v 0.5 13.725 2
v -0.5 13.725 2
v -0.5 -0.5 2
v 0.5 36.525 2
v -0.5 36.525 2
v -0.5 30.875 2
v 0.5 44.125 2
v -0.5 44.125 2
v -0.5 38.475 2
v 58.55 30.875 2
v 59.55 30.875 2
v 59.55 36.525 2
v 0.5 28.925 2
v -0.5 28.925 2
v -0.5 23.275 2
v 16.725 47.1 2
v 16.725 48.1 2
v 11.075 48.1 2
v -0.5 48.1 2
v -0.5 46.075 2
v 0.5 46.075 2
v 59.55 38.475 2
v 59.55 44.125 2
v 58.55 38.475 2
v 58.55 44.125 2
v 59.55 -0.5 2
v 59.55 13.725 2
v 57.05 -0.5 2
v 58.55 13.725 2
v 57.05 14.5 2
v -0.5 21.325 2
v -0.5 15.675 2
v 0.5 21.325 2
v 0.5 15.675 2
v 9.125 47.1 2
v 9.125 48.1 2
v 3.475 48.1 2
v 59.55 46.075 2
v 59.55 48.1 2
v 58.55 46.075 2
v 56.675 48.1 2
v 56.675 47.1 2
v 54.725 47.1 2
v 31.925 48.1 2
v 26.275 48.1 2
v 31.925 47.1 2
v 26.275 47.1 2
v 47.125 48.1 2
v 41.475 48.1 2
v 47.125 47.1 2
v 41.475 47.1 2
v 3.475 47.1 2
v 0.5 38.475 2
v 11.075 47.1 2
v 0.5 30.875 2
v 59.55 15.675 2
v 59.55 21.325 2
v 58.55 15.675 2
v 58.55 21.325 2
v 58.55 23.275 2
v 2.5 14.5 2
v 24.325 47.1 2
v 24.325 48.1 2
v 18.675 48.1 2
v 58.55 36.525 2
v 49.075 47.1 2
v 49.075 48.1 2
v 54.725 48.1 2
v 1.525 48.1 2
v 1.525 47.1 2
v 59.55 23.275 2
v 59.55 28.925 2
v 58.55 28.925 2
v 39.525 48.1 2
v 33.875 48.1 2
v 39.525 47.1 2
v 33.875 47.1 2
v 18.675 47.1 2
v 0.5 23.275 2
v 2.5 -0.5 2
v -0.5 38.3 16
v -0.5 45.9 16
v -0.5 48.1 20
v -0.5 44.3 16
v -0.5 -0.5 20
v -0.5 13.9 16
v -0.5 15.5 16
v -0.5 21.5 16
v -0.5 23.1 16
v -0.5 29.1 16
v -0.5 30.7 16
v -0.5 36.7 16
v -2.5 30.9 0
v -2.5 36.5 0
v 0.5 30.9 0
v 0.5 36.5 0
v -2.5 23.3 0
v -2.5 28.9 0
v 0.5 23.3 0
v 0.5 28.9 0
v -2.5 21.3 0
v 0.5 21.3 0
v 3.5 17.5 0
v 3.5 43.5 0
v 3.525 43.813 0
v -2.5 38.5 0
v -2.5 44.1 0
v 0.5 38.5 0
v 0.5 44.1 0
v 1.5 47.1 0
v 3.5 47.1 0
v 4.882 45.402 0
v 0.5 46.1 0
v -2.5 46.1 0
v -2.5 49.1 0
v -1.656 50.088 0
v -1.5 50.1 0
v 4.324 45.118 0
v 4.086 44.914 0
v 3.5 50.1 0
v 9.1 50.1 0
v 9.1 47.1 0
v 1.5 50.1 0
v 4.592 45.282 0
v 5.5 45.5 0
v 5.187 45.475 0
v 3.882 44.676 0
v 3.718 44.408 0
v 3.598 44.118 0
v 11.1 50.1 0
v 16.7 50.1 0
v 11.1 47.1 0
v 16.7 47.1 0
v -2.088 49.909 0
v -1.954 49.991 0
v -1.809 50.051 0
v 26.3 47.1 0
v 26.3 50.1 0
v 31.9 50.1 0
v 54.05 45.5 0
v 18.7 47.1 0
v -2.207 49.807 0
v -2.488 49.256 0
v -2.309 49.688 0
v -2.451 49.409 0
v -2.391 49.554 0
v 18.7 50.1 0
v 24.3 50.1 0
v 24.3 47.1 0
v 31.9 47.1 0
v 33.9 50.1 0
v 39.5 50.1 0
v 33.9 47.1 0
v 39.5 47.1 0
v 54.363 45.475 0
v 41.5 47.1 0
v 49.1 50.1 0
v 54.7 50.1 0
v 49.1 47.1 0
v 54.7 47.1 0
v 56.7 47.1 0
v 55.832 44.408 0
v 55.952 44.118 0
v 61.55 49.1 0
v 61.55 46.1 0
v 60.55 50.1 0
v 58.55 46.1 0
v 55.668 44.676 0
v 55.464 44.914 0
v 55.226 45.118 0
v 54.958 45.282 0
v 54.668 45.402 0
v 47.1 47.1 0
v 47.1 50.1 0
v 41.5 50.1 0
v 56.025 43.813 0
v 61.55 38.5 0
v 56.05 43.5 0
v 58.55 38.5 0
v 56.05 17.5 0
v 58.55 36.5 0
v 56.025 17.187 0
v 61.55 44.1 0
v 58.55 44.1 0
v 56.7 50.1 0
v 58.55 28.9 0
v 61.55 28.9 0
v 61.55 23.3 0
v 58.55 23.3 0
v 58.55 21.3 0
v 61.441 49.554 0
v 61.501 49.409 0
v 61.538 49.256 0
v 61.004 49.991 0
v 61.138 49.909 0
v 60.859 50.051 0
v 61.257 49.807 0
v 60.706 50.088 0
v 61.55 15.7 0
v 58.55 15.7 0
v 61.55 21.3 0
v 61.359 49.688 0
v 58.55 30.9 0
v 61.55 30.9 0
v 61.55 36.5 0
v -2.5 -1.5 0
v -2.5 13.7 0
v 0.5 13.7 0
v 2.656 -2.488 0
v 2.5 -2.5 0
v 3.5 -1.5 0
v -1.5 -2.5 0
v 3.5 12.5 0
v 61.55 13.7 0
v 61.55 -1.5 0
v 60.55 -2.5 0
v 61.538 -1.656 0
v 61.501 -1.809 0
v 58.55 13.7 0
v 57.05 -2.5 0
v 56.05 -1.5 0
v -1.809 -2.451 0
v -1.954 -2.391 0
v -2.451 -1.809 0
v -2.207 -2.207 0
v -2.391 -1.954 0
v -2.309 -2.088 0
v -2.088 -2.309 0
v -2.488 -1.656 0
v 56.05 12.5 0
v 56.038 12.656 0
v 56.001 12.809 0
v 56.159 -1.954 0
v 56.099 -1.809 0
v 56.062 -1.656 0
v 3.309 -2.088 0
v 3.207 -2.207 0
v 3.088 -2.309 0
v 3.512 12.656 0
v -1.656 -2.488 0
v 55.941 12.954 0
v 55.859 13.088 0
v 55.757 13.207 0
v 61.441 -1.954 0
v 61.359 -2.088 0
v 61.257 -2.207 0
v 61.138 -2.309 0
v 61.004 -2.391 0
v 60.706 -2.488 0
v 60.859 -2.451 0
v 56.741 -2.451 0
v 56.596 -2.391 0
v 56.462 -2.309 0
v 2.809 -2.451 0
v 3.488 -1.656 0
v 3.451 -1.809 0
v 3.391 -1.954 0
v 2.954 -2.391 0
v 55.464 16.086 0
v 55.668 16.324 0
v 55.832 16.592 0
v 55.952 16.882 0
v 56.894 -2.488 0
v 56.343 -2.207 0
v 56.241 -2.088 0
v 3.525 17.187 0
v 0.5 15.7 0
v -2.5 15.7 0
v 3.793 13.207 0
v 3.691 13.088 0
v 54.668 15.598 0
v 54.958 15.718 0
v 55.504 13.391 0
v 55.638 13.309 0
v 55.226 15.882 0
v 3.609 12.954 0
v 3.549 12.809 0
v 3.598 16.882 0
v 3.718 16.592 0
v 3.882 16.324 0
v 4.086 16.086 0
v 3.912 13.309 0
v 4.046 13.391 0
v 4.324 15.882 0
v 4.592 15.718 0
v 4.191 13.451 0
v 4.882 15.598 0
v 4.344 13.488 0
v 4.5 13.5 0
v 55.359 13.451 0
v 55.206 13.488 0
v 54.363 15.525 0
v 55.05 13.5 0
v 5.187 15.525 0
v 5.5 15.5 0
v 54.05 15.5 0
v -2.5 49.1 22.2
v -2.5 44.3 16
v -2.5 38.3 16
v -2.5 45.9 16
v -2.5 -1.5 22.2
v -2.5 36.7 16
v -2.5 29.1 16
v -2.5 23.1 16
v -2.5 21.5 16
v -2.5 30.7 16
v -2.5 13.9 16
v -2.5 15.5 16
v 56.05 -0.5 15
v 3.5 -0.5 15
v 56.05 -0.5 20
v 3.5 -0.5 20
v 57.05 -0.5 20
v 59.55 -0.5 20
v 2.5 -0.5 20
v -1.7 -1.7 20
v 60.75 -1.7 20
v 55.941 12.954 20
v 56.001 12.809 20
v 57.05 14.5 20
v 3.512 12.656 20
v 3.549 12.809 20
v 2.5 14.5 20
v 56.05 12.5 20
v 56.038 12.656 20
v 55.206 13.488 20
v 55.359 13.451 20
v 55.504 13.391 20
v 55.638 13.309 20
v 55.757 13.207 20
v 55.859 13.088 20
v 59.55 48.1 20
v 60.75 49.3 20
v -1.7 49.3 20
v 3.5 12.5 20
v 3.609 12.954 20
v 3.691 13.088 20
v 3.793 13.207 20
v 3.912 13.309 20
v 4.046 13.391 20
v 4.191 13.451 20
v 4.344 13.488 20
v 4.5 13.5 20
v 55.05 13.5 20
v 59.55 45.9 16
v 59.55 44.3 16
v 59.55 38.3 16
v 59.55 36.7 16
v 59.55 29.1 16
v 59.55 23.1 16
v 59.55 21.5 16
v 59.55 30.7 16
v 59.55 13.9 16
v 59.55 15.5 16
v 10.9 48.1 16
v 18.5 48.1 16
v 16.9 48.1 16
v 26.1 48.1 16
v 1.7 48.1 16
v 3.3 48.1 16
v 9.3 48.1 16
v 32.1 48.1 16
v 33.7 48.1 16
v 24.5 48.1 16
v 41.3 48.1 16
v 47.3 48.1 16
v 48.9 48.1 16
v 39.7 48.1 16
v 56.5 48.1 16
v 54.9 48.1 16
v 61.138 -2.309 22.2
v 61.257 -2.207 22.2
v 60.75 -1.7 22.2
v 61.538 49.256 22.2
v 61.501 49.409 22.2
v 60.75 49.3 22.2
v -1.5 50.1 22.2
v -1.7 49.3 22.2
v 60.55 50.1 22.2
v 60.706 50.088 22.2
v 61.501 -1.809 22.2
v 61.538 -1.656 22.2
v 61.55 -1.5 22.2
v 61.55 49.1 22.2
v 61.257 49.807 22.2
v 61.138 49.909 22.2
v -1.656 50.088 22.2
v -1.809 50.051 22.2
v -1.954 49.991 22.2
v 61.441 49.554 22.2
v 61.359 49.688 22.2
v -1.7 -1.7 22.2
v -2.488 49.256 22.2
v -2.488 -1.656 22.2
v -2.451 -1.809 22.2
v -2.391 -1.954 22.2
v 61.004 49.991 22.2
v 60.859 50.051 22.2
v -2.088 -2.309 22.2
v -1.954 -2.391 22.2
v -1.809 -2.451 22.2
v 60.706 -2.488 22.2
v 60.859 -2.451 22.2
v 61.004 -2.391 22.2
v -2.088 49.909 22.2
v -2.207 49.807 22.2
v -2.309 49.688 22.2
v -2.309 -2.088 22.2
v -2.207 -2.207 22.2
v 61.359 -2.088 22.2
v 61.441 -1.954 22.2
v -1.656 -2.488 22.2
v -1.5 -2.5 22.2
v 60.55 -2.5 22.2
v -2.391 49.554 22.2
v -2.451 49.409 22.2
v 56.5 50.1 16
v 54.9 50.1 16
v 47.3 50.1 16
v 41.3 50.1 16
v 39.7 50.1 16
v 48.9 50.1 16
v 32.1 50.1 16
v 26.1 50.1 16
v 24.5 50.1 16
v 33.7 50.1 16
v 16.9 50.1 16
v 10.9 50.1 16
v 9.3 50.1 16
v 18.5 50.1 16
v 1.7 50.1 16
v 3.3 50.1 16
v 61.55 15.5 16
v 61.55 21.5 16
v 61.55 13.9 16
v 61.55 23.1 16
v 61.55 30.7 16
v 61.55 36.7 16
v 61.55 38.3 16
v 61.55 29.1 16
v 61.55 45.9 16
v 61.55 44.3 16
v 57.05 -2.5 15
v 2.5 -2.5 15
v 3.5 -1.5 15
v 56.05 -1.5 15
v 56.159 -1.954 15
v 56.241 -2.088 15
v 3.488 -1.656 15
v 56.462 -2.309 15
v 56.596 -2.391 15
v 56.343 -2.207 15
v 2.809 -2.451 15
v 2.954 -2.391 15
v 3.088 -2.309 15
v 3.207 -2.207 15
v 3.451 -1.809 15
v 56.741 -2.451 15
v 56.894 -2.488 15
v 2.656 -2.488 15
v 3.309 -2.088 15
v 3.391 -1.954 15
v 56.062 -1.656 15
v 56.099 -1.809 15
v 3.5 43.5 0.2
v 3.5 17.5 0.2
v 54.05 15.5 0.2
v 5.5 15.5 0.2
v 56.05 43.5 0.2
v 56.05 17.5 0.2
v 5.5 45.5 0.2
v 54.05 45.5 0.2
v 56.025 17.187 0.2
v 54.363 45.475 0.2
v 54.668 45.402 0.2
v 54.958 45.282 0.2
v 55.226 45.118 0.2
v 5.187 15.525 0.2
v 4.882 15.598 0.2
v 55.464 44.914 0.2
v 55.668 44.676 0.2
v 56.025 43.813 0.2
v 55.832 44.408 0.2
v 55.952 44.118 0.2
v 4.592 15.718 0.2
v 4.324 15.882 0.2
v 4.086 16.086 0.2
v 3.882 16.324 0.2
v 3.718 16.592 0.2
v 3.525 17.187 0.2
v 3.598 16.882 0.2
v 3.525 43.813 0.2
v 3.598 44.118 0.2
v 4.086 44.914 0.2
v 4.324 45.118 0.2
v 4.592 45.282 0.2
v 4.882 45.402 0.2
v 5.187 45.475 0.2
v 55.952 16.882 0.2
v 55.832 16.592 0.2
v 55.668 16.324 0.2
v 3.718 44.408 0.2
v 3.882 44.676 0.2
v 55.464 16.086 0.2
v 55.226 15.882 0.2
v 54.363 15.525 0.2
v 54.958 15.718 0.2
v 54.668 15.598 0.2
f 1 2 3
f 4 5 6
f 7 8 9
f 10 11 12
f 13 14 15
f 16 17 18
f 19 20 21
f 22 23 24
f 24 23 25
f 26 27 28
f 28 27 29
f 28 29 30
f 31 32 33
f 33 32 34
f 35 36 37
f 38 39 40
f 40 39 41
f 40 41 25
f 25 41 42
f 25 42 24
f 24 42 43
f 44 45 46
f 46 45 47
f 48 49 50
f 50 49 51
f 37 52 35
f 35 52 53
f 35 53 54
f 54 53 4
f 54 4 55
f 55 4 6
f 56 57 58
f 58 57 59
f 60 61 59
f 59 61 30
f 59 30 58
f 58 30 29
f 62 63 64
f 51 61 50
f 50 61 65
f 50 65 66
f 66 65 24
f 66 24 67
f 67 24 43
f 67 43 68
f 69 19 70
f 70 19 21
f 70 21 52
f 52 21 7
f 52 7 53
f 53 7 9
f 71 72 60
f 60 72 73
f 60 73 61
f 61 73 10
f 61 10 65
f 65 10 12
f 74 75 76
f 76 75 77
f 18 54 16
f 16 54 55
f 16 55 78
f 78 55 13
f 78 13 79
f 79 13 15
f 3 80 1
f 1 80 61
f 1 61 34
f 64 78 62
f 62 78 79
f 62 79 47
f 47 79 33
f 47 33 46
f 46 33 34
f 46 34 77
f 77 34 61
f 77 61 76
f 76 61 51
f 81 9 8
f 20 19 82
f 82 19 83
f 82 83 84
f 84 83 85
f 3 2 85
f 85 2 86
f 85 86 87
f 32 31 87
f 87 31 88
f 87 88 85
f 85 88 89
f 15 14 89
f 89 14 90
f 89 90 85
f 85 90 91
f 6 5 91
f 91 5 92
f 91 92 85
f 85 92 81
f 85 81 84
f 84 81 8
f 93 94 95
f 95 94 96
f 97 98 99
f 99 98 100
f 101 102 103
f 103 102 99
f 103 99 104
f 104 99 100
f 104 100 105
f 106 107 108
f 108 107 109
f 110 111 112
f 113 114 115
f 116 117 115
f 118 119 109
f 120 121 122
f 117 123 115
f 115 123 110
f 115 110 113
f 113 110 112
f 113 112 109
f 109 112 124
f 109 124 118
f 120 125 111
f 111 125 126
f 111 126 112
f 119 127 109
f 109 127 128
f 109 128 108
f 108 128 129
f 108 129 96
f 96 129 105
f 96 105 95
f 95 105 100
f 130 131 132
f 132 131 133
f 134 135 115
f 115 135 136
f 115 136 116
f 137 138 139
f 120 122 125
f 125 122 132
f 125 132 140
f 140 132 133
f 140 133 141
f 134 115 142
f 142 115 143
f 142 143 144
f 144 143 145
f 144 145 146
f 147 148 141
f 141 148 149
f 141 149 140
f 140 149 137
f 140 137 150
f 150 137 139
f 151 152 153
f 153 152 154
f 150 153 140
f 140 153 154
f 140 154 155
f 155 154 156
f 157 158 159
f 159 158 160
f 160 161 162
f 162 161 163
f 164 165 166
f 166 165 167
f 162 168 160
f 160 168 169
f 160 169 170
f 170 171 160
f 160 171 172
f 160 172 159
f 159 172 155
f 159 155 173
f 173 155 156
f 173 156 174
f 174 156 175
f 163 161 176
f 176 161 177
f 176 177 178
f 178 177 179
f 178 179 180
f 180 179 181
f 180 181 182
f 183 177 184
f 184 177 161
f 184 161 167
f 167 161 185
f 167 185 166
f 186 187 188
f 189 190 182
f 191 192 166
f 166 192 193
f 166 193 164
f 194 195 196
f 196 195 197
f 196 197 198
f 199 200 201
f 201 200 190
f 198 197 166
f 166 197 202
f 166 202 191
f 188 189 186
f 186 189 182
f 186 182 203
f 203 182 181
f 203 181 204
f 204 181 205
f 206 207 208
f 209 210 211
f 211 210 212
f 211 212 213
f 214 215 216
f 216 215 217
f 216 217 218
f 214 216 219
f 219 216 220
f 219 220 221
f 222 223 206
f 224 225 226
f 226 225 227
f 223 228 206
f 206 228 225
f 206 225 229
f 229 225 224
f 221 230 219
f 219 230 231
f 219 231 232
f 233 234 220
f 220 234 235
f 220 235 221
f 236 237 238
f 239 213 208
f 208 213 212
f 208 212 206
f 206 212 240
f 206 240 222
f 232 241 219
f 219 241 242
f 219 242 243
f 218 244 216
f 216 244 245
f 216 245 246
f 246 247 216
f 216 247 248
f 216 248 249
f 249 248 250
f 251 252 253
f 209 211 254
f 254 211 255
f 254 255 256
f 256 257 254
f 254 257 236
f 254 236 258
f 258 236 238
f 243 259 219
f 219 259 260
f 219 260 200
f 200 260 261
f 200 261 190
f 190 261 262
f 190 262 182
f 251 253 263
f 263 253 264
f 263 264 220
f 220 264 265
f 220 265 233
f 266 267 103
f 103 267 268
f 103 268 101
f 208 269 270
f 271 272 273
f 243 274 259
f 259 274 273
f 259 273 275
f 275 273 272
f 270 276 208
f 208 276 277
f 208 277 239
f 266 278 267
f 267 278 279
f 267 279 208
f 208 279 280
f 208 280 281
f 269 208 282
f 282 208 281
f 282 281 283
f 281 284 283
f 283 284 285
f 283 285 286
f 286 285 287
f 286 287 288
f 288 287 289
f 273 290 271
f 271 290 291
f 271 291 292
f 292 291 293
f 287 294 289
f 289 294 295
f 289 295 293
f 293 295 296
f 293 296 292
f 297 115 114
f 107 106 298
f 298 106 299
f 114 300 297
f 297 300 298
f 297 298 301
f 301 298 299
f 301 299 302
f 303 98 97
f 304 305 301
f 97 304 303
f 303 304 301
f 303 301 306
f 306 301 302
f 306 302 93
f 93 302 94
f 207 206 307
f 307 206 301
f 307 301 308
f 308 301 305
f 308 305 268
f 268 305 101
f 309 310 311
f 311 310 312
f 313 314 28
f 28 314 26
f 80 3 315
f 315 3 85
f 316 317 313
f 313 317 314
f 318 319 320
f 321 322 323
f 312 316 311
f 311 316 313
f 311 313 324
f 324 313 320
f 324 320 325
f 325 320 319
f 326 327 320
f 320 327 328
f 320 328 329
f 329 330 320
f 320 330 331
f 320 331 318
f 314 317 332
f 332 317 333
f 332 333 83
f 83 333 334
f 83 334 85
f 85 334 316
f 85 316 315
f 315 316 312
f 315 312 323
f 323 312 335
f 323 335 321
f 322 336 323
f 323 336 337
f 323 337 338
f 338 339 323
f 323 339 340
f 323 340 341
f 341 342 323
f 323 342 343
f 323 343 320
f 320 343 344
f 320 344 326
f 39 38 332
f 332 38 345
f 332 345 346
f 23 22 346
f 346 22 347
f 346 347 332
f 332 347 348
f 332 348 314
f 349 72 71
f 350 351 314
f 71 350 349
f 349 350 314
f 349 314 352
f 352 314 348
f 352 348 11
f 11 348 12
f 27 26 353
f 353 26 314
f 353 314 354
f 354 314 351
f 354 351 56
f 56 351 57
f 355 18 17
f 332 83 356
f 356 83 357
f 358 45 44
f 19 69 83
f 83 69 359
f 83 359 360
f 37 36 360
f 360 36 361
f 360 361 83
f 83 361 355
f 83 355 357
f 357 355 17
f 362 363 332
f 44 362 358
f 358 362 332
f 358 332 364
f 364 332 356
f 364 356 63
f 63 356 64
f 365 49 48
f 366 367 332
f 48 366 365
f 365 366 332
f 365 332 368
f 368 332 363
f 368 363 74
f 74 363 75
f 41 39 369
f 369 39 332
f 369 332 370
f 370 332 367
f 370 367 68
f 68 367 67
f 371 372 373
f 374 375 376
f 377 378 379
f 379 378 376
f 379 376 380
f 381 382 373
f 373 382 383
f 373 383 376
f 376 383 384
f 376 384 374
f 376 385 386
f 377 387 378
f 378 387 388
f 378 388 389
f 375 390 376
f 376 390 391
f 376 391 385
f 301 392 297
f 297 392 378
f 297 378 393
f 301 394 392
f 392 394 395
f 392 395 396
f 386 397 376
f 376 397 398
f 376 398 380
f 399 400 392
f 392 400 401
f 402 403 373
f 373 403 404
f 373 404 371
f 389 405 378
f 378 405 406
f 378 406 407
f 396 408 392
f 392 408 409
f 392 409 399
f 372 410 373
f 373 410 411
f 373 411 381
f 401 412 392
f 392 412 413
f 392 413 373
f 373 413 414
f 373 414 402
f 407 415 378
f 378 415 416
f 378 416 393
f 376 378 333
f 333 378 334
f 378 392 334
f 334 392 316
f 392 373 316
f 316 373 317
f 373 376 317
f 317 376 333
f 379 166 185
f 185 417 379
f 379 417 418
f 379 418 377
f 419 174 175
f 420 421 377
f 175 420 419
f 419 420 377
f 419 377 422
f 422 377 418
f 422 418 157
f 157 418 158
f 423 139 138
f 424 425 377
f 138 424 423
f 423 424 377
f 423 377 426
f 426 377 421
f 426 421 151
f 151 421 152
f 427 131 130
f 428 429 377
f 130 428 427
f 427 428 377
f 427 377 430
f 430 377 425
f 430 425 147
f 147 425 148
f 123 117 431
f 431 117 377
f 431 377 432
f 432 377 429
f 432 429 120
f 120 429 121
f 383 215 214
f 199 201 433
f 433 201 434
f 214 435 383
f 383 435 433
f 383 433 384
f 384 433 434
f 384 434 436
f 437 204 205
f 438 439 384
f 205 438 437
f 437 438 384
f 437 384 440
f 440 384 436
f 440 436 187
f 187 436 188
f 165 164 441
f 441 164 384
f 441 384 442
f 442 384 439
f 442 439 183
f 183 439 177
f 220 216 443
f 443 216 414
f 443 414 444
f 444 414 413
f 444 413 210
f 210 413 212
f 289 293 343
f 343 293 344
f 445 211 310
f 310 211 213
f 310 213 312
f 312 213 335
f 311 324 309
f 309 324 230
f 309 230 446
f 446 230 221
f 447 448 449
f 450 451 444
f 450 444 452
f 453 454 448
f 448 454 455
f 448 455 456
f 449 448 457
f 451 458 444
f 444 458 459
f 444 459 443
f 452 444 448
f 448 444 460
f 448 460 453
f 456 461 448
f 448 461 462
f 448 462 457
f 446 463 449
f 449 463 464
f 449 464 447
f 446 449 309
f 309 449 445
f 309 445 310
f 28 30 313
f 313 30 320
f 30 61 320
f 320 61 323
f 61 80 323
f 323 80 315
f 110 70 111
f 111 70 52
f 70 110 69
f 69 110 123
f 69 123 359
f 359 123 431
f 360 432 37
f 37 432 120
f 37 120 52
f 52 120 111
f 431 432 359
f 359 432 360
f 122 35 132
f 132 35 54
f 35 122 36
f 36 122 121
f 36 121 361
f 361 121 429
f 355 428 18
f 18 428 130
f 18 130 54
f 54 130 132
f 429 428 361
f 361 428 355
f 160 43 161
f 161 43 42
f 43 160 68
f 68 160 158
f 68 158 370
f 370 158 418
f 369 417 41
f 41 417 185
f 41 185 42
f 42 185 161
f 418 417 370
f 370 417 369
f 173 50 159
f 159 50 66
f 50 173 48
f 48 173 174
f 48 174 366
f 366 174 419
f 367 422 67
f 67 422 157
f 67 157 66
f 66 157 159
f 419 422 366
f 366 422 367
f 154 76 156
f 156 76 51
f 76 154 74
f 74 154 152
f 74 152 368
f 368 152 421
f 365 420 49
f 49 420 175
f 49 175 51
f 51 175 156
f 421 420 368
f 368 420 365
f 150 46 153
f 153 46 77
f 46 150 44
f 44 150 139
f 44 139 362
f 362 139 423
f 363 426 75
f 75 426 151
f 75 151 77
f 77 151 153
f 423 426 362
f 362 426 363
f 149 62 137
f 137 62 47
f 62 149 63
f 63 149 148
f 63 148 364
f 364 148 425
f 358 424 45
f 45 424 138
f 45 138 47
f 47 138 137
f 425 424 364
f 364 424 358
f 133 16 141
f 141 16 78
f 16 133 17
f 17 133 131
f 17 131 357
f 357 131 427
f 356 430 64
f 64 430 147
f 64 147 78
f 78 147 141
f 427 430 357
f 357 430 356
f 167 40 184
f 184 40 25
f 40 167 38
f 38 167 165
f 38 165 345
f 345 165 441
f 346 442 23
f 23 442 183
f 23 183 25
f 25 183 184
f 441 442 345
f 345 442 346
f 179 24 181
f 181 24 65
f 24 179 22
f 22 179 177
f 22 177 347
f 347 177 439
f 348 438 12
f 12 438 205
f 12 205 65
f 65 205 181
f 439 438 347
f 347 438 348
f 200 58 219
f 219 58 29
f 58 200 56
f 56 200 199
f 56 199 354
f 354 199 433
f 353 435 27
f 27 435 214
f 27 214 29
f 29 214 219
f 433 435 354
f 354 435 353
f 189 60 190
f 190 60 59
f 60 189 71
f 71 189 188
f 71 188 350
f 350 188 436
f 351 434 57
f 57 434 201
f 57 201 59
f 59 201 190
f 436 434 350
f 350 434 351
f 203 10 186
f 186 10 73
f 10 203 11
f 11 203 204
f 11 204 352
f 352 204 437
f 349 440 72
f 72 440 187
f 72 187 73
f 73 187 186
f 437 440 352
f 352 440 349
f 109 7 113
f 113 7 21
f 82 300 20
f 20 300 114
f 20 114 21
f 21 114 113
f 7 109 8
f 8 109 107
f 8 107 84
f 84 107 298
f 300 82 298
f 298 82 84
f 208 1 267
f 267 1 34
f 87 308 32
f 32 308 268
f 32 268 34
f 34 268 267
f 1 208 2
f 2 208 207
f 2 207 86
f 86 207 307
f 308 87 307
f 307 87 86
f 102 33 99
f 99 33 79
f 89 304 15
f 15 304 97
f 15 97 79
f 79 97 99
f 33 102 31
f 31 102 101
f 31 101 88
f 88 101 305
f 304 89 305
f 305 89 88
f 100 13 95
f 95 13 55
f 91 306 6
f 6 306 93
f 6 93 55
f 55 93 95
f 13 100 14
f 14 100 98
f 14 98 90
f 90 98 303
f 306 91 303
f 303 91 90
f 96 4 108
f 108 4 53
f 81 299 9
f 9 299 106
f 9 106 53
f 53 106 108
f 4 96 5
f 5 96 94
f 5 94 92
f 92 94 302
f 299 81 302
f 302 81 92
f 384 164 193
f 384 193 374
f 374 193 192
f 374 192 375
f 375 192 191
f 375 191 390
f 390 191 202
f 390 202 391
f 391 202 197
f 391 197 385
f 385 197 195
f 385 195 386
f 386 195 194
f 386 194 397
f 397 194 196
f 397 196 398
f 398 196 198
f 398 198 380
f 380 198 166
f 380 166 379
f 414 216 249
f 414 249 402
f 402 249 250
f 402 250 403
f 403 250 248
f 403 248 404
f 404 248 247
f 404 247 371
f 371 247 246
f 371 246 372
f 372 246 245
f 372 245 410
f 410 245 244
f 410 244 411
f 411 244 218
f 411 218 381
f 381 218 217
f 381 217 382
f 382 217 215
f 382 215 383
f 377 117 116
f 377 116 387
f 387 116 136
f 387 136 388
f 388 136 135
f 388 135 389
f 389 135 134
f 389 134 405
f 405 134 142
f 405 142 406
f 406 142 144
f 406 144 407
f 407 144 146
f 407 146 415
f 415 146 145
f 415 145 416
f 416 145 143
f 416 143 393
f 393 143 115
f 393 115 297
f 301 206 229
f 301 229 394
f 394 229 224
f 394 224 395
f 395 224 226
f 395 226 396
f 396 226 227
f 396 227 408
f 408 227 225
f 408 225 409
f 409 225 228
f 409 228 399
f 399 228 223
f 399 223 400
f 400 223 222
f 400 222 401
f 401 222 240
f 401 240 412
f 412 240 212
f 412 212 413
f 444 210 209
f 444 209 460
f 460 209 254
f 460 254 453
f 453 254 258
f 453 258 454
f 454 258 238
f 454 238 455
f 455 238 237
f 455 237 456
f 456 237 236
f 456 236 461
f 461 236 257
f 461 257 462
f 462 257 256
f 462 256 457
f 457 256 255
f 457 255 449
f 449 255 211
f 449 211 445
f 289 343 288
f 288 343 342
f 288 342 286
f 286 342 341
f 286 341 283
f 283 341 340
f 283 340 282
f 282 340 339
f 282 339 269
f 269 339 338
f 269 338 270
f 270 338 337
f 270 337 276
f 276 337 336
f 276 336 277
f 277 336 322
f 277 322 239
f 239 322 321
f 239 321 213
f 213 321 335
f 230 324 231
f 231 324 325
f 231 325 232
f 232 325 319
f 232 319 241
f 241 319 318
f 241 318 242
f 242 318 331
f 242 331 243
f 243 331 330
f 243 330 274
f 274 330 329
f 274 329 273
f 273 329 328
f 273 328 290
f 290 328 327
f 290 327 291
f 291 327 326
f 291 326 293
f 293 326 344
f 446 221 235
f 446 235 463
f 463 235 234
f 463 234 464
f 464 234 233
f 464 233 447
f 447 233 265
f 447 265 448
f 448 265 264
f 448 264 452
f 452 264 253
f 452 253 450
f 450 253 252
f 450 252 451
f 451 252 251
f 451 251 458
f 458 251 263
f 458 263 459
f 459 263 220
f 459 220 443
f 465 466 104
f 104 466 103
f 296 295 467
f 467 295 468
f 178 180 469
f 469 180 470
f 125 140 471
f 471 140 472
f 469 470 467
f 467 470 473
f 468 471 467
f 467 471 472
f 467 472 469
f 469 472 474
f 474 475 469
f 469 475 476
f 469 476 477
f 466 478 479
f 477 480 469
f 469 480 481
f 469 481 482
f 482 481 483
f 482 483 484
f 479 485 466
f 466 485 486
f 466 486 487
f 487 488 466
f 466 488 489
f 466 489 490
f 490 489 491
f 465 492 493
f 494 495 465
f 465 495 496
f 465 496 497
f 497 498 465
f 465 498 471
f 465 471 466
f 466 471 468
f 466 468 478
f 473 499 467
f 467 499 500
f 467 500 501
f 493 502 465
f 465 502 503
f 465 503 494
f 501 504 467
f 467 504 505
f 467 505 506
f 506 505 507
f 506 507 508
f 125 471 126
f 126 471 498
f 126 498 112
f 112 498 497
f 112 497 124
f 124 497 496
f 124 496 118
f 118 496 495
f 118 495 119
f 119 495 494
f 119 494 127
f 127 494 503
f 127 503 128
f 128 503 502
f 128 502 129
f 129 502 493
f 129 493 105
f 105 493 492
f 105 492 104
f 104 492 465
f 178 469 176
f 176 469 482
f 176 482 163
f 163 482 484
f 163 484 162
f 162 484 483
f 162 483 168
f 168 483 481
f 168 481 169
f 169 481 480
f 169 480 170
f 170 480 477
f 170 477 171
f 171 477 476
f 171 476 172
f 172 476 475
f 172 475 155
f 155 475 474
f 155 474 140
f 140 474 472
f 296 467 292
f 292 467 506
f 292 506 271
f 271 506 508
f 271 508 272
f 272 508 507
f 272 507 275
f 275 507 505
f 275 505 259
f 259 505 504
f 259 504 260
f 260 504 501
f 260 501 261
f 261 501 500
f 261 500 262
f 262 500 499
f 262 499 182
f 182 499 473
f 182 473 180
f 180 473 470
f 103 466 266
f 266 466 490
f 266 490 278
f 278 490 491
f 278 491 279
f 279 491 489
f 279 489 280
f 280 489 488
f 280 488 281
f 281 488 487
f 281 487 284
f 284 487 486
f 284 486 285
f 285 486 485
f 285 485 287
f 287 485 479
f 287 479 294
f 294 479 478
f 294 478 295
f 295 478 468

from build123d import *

# Parameters (mm, degrees)
SKETCH1_W            = 64.05
SKETCH1_H            = 52.6
BOSS_EXTRUDE1_DEPTH  = 2
SKETCH2_W            = 64.05
SKETCH2_H            = 52.6
SKETCH2_W_2          = 60.05
SKETCH2_H_2          = 48.6
BOSS_EXTRUDE2_DEPTH  = 18
SKETCH3_W            = 64.05
SKETCH3_H            = 52.6
SKETCH3_W_2          = 62.45
SKETCH3_H_2          = 51
BOSS_EXTRUDE3_DEPTH  = 2.2
SKETCH6_W            = 52.55
SKETCH6_H            = 16
CUT_EXTRUDE2_DEPTH   = 15
BOSS_EXTRUDE4_DEPTH  = 18
CUT_EXTRUDE3_DEPTH   = 3
LPATTERN1_COUNT      = 8
LPATTERN1_PITCH      = 7.6
CUT_EXTRUDE4_DEPTH   = 3
LPATTERN2_COUNT      = 5
LPATTERN2_PITCH      = 7.6
MIRROR1_COPY_1_DEPTH = 3
MIRROR1_COPY_2_DEPTH = 3
MIRROR1_COPY_3_DEPTH = 3
MIRROR1_COPY_4_DEPTH = 3
FILLET1_R            = 1
SKETCH10_W           = 52.55
SKETCH10_H           = 30
CUT_EXTRUDE5_DEPTH   = 0.2
FILLET2_R            = 2


with BuildPart() as part:
    # Sketch1 → Boss-Extrude1 (new body)
    with BuildSketch(Plane.XY):
        with Locations((29.525, 23.8)):
            Rectangle(SKETCH1_W, SKETCH1_H)
    extrude(amount=BOSS_EXTRUDE1_DEPTH)

    # Sketch2 → Boss-Extrude2 (add)
    with BuildSketch(Plane.XY.offset(2)):
        with Locations((29.525, 23.8)):
            Rectangle(SKETCH2_W, SKETCH2_H)
        with Locations((29.525, 23.8)):
            Rectangle(SKETCH2_W_2, SKETCH2_H_2, mode=Mode.SUBTRACT)
    extrude(amount=BOSS_EXTRUDE2_DEPTH)

    # Sketch3 → Boss-Extrude3 (add)
    with BuildSketch(Plane.XY.offset(20)):
        with Locations((29.525, 23.8)):
            Rectangle(SKETCH3_W, SKETCH3_H)
        with Locations((29.525, 23.8)):
            Rectangle(SKETCH3_W_2, SKETCH3_H_2, mode=Mode.SUBTRACT)
    extrude(amount=BOSS_EXTRUDE3_DEPTH)

    # Sketch6 → Cut-Extrude2 (cut)
    with BuildSketch(Plane(origin=(0, 0, 0), x_dir=(-1, 0, 0), z_dir=(0, 0, -1))):
        with Locations((-29.775, 5.5)):
            Rectangle(SKETCH6_W, SKETCH6_H)
    extrude(amount=-CUT_EXTRUDE2_DEPTH, mode=Mode.SUBTRACT)

    # Sketch7 → Boss-Extrude4 (add)
    with BuildSketch(Plane.XY.offset(2)):
        Polygon((56.05, 13.5), (56.05, -0.5), (57.05, -0.5), (57.05, 14.5), (2.5, 14.5), (2.5, -0.5), (3.5, -0.5), (3.5, 13.5), align=None)
    extrude(amount=BOSS_EXTRUDE4_DEPTH)

    # Sketch8 → Cut-Extrude3 (cut)
    with BuildSketch(Plane(origin=(0, 50.1, 0), x_dir=(1, 0, 0), z_dir=(0, 1, 0))):
        Polygon((1.5, 0), (3.5, 0), (3.3, -16), (1.7, -16), align=None)
    cut_extrude3 = extrude(amount=-CUT_EXTRUDE3_DEPTH, mode=Mode.SUBTRACT)

    # LPattern1: Cut-Extrude3 ×8
    with Locations(*[(i * LPATTERN1_PITCH, 0, 0) for i in range(1, LPATTERN1_COUNT)]):
        add(cut_extrude3, mode=Mode.SUBTRACT)

    # Sketch9 → Cut-Extrude4 (cut)
    with BuildSketch(Plane(origin=(61.55, 0, 0), x_dir=(0, 0, -1), z_dir=(1, 0, 0))):
        Polygon((0, 46.1), (0, 44.1), (-16, 44.3), (-16, 45.9), align=None)
    cut_extrude4 = extrude(amount=-CUT_EXTRUDE4_DEPTH, mode=Mode.SUBTRACT)

    # LPattern2: Cut-Extrude4 ×5
    with Locations(*[(0, -i * LPATTERN2_PITCH, 0) for i in range(1, LPATTERN2_COUNT)]):
        add(cut_extrude4, mode=Mode.SUBTRACT)

    # Mirror1: Cut-Extrude4 across plane
    add(cut_extrude4.mirror(Plane(origin=(29.525, 0, 0), x_dir=(0, 0, 1), z_dir=(1, 0, 0))), mode=Mode.SUBTRACT)

    # Mirror1 copy 1 sketch → Mirror1 copy 1 (cut)
    with BuildSketch(Plane(origin=(-2.5, -7.6, 0), x_dir=(0, 0, -1), z_dir=(-1, 0, 0))):
        Polygon((0, -46.1), (0, -44.1), (-16, -44.3), (-16, -45.9), align=None)
    extrude(amount=-MIRROR1_COPY_1_DEPTH, mode=Mode.SUBTRACT)

    # Mirror1 copy 2 sketch → Mirror1 copy 2 (cut)
    with BuildSketch(Plane(origin=(-2.5, -15.2, 0), x_dir=(0, 0, -1), z_dir=(-1, 0, 0))):
        Polygon((0, -46.1), (0, -44.1), (-16, -44.3), (-16, -45.9), align=None)
    extrude(amount=-MIRROR1_COPY_2_DEPTH, mode=Mode.SUBTRACT)

    # Mirror1 copy 3 sketch → Mirror1 copy 3 (cut)
    with BuildSketch(Plane(origin=(-2.5, -22.8, 0), x_dir=(0, 0, -1), z_dir=(-1, 0, 0))):
        Polygon((0, -46.1), (0, -44.1), (-16, -44.3), (-16, -45.9), align=None)
    extrude(amount=-MIRROR1_COPY_3_DEPTH, mode=Mode.SUBTRACT)

    # Mirror1 copy 4 sketch → Mirror1 copy 4 (cut)
    with BuildSketch(Plane(origin=(-2.5, -30.4, 0), x_dir=(0, 0, -1), z_dir=(-1, 0, 0))):
        Polygon((0, -46.1), (0, -44.1), (-16, -44.3), (-16, -45.9), align=None)
    extrude(amount=-MIRROR1_COPY_4_DEPTH, mode=Mode.SUBTRACT)

    # Fillet1
    fillet1_edges = [part.edges().sort_by_distance(p)[0] for p in [
        (56.05, 13.5, 10),
        (3.5, 13.5, 10),
        (3.5, -2.5, 7.5),
        (56.05, -2.5, 7.5),
        (-2.5, 50.1, 11.1),
        (61.55, 50.1, 11.1),
        (61.55, -2.5, 11.1),
        (-2.5, -2.5, 11.1),
    ]]
    fillet(fillet1_edges, radius=FILLET1_R)

    # Sketch10 → Cut-Extrude5 (cut)
    with BuildSketch(Plane(origin=(0, 0, 0), x_dir=(-1, 0, 0), z_dir=(0, 0, -1))):
        with Locations((-29.775, 30.5)):
            Rectangle(SKETCH10_W, SKETCH10_H)
    extrude(amount=-CUT_EXTRUDE5_DEPTH, mode=Mode.SUBTRACT)

    # Fillet2
    fillet2_edges = [part.edges().sort_by_distance(p)[0] for p in [
        (3.5, 45.5, 0.1),
        (3.5, 15.5, 0.1),
        (56.05, 15.5, 0.1),
        (56.05, 45.5, 0.1),
    ]]
    fillet(fillet2_edges, radius=FILLET2_R)


solid = part.part
